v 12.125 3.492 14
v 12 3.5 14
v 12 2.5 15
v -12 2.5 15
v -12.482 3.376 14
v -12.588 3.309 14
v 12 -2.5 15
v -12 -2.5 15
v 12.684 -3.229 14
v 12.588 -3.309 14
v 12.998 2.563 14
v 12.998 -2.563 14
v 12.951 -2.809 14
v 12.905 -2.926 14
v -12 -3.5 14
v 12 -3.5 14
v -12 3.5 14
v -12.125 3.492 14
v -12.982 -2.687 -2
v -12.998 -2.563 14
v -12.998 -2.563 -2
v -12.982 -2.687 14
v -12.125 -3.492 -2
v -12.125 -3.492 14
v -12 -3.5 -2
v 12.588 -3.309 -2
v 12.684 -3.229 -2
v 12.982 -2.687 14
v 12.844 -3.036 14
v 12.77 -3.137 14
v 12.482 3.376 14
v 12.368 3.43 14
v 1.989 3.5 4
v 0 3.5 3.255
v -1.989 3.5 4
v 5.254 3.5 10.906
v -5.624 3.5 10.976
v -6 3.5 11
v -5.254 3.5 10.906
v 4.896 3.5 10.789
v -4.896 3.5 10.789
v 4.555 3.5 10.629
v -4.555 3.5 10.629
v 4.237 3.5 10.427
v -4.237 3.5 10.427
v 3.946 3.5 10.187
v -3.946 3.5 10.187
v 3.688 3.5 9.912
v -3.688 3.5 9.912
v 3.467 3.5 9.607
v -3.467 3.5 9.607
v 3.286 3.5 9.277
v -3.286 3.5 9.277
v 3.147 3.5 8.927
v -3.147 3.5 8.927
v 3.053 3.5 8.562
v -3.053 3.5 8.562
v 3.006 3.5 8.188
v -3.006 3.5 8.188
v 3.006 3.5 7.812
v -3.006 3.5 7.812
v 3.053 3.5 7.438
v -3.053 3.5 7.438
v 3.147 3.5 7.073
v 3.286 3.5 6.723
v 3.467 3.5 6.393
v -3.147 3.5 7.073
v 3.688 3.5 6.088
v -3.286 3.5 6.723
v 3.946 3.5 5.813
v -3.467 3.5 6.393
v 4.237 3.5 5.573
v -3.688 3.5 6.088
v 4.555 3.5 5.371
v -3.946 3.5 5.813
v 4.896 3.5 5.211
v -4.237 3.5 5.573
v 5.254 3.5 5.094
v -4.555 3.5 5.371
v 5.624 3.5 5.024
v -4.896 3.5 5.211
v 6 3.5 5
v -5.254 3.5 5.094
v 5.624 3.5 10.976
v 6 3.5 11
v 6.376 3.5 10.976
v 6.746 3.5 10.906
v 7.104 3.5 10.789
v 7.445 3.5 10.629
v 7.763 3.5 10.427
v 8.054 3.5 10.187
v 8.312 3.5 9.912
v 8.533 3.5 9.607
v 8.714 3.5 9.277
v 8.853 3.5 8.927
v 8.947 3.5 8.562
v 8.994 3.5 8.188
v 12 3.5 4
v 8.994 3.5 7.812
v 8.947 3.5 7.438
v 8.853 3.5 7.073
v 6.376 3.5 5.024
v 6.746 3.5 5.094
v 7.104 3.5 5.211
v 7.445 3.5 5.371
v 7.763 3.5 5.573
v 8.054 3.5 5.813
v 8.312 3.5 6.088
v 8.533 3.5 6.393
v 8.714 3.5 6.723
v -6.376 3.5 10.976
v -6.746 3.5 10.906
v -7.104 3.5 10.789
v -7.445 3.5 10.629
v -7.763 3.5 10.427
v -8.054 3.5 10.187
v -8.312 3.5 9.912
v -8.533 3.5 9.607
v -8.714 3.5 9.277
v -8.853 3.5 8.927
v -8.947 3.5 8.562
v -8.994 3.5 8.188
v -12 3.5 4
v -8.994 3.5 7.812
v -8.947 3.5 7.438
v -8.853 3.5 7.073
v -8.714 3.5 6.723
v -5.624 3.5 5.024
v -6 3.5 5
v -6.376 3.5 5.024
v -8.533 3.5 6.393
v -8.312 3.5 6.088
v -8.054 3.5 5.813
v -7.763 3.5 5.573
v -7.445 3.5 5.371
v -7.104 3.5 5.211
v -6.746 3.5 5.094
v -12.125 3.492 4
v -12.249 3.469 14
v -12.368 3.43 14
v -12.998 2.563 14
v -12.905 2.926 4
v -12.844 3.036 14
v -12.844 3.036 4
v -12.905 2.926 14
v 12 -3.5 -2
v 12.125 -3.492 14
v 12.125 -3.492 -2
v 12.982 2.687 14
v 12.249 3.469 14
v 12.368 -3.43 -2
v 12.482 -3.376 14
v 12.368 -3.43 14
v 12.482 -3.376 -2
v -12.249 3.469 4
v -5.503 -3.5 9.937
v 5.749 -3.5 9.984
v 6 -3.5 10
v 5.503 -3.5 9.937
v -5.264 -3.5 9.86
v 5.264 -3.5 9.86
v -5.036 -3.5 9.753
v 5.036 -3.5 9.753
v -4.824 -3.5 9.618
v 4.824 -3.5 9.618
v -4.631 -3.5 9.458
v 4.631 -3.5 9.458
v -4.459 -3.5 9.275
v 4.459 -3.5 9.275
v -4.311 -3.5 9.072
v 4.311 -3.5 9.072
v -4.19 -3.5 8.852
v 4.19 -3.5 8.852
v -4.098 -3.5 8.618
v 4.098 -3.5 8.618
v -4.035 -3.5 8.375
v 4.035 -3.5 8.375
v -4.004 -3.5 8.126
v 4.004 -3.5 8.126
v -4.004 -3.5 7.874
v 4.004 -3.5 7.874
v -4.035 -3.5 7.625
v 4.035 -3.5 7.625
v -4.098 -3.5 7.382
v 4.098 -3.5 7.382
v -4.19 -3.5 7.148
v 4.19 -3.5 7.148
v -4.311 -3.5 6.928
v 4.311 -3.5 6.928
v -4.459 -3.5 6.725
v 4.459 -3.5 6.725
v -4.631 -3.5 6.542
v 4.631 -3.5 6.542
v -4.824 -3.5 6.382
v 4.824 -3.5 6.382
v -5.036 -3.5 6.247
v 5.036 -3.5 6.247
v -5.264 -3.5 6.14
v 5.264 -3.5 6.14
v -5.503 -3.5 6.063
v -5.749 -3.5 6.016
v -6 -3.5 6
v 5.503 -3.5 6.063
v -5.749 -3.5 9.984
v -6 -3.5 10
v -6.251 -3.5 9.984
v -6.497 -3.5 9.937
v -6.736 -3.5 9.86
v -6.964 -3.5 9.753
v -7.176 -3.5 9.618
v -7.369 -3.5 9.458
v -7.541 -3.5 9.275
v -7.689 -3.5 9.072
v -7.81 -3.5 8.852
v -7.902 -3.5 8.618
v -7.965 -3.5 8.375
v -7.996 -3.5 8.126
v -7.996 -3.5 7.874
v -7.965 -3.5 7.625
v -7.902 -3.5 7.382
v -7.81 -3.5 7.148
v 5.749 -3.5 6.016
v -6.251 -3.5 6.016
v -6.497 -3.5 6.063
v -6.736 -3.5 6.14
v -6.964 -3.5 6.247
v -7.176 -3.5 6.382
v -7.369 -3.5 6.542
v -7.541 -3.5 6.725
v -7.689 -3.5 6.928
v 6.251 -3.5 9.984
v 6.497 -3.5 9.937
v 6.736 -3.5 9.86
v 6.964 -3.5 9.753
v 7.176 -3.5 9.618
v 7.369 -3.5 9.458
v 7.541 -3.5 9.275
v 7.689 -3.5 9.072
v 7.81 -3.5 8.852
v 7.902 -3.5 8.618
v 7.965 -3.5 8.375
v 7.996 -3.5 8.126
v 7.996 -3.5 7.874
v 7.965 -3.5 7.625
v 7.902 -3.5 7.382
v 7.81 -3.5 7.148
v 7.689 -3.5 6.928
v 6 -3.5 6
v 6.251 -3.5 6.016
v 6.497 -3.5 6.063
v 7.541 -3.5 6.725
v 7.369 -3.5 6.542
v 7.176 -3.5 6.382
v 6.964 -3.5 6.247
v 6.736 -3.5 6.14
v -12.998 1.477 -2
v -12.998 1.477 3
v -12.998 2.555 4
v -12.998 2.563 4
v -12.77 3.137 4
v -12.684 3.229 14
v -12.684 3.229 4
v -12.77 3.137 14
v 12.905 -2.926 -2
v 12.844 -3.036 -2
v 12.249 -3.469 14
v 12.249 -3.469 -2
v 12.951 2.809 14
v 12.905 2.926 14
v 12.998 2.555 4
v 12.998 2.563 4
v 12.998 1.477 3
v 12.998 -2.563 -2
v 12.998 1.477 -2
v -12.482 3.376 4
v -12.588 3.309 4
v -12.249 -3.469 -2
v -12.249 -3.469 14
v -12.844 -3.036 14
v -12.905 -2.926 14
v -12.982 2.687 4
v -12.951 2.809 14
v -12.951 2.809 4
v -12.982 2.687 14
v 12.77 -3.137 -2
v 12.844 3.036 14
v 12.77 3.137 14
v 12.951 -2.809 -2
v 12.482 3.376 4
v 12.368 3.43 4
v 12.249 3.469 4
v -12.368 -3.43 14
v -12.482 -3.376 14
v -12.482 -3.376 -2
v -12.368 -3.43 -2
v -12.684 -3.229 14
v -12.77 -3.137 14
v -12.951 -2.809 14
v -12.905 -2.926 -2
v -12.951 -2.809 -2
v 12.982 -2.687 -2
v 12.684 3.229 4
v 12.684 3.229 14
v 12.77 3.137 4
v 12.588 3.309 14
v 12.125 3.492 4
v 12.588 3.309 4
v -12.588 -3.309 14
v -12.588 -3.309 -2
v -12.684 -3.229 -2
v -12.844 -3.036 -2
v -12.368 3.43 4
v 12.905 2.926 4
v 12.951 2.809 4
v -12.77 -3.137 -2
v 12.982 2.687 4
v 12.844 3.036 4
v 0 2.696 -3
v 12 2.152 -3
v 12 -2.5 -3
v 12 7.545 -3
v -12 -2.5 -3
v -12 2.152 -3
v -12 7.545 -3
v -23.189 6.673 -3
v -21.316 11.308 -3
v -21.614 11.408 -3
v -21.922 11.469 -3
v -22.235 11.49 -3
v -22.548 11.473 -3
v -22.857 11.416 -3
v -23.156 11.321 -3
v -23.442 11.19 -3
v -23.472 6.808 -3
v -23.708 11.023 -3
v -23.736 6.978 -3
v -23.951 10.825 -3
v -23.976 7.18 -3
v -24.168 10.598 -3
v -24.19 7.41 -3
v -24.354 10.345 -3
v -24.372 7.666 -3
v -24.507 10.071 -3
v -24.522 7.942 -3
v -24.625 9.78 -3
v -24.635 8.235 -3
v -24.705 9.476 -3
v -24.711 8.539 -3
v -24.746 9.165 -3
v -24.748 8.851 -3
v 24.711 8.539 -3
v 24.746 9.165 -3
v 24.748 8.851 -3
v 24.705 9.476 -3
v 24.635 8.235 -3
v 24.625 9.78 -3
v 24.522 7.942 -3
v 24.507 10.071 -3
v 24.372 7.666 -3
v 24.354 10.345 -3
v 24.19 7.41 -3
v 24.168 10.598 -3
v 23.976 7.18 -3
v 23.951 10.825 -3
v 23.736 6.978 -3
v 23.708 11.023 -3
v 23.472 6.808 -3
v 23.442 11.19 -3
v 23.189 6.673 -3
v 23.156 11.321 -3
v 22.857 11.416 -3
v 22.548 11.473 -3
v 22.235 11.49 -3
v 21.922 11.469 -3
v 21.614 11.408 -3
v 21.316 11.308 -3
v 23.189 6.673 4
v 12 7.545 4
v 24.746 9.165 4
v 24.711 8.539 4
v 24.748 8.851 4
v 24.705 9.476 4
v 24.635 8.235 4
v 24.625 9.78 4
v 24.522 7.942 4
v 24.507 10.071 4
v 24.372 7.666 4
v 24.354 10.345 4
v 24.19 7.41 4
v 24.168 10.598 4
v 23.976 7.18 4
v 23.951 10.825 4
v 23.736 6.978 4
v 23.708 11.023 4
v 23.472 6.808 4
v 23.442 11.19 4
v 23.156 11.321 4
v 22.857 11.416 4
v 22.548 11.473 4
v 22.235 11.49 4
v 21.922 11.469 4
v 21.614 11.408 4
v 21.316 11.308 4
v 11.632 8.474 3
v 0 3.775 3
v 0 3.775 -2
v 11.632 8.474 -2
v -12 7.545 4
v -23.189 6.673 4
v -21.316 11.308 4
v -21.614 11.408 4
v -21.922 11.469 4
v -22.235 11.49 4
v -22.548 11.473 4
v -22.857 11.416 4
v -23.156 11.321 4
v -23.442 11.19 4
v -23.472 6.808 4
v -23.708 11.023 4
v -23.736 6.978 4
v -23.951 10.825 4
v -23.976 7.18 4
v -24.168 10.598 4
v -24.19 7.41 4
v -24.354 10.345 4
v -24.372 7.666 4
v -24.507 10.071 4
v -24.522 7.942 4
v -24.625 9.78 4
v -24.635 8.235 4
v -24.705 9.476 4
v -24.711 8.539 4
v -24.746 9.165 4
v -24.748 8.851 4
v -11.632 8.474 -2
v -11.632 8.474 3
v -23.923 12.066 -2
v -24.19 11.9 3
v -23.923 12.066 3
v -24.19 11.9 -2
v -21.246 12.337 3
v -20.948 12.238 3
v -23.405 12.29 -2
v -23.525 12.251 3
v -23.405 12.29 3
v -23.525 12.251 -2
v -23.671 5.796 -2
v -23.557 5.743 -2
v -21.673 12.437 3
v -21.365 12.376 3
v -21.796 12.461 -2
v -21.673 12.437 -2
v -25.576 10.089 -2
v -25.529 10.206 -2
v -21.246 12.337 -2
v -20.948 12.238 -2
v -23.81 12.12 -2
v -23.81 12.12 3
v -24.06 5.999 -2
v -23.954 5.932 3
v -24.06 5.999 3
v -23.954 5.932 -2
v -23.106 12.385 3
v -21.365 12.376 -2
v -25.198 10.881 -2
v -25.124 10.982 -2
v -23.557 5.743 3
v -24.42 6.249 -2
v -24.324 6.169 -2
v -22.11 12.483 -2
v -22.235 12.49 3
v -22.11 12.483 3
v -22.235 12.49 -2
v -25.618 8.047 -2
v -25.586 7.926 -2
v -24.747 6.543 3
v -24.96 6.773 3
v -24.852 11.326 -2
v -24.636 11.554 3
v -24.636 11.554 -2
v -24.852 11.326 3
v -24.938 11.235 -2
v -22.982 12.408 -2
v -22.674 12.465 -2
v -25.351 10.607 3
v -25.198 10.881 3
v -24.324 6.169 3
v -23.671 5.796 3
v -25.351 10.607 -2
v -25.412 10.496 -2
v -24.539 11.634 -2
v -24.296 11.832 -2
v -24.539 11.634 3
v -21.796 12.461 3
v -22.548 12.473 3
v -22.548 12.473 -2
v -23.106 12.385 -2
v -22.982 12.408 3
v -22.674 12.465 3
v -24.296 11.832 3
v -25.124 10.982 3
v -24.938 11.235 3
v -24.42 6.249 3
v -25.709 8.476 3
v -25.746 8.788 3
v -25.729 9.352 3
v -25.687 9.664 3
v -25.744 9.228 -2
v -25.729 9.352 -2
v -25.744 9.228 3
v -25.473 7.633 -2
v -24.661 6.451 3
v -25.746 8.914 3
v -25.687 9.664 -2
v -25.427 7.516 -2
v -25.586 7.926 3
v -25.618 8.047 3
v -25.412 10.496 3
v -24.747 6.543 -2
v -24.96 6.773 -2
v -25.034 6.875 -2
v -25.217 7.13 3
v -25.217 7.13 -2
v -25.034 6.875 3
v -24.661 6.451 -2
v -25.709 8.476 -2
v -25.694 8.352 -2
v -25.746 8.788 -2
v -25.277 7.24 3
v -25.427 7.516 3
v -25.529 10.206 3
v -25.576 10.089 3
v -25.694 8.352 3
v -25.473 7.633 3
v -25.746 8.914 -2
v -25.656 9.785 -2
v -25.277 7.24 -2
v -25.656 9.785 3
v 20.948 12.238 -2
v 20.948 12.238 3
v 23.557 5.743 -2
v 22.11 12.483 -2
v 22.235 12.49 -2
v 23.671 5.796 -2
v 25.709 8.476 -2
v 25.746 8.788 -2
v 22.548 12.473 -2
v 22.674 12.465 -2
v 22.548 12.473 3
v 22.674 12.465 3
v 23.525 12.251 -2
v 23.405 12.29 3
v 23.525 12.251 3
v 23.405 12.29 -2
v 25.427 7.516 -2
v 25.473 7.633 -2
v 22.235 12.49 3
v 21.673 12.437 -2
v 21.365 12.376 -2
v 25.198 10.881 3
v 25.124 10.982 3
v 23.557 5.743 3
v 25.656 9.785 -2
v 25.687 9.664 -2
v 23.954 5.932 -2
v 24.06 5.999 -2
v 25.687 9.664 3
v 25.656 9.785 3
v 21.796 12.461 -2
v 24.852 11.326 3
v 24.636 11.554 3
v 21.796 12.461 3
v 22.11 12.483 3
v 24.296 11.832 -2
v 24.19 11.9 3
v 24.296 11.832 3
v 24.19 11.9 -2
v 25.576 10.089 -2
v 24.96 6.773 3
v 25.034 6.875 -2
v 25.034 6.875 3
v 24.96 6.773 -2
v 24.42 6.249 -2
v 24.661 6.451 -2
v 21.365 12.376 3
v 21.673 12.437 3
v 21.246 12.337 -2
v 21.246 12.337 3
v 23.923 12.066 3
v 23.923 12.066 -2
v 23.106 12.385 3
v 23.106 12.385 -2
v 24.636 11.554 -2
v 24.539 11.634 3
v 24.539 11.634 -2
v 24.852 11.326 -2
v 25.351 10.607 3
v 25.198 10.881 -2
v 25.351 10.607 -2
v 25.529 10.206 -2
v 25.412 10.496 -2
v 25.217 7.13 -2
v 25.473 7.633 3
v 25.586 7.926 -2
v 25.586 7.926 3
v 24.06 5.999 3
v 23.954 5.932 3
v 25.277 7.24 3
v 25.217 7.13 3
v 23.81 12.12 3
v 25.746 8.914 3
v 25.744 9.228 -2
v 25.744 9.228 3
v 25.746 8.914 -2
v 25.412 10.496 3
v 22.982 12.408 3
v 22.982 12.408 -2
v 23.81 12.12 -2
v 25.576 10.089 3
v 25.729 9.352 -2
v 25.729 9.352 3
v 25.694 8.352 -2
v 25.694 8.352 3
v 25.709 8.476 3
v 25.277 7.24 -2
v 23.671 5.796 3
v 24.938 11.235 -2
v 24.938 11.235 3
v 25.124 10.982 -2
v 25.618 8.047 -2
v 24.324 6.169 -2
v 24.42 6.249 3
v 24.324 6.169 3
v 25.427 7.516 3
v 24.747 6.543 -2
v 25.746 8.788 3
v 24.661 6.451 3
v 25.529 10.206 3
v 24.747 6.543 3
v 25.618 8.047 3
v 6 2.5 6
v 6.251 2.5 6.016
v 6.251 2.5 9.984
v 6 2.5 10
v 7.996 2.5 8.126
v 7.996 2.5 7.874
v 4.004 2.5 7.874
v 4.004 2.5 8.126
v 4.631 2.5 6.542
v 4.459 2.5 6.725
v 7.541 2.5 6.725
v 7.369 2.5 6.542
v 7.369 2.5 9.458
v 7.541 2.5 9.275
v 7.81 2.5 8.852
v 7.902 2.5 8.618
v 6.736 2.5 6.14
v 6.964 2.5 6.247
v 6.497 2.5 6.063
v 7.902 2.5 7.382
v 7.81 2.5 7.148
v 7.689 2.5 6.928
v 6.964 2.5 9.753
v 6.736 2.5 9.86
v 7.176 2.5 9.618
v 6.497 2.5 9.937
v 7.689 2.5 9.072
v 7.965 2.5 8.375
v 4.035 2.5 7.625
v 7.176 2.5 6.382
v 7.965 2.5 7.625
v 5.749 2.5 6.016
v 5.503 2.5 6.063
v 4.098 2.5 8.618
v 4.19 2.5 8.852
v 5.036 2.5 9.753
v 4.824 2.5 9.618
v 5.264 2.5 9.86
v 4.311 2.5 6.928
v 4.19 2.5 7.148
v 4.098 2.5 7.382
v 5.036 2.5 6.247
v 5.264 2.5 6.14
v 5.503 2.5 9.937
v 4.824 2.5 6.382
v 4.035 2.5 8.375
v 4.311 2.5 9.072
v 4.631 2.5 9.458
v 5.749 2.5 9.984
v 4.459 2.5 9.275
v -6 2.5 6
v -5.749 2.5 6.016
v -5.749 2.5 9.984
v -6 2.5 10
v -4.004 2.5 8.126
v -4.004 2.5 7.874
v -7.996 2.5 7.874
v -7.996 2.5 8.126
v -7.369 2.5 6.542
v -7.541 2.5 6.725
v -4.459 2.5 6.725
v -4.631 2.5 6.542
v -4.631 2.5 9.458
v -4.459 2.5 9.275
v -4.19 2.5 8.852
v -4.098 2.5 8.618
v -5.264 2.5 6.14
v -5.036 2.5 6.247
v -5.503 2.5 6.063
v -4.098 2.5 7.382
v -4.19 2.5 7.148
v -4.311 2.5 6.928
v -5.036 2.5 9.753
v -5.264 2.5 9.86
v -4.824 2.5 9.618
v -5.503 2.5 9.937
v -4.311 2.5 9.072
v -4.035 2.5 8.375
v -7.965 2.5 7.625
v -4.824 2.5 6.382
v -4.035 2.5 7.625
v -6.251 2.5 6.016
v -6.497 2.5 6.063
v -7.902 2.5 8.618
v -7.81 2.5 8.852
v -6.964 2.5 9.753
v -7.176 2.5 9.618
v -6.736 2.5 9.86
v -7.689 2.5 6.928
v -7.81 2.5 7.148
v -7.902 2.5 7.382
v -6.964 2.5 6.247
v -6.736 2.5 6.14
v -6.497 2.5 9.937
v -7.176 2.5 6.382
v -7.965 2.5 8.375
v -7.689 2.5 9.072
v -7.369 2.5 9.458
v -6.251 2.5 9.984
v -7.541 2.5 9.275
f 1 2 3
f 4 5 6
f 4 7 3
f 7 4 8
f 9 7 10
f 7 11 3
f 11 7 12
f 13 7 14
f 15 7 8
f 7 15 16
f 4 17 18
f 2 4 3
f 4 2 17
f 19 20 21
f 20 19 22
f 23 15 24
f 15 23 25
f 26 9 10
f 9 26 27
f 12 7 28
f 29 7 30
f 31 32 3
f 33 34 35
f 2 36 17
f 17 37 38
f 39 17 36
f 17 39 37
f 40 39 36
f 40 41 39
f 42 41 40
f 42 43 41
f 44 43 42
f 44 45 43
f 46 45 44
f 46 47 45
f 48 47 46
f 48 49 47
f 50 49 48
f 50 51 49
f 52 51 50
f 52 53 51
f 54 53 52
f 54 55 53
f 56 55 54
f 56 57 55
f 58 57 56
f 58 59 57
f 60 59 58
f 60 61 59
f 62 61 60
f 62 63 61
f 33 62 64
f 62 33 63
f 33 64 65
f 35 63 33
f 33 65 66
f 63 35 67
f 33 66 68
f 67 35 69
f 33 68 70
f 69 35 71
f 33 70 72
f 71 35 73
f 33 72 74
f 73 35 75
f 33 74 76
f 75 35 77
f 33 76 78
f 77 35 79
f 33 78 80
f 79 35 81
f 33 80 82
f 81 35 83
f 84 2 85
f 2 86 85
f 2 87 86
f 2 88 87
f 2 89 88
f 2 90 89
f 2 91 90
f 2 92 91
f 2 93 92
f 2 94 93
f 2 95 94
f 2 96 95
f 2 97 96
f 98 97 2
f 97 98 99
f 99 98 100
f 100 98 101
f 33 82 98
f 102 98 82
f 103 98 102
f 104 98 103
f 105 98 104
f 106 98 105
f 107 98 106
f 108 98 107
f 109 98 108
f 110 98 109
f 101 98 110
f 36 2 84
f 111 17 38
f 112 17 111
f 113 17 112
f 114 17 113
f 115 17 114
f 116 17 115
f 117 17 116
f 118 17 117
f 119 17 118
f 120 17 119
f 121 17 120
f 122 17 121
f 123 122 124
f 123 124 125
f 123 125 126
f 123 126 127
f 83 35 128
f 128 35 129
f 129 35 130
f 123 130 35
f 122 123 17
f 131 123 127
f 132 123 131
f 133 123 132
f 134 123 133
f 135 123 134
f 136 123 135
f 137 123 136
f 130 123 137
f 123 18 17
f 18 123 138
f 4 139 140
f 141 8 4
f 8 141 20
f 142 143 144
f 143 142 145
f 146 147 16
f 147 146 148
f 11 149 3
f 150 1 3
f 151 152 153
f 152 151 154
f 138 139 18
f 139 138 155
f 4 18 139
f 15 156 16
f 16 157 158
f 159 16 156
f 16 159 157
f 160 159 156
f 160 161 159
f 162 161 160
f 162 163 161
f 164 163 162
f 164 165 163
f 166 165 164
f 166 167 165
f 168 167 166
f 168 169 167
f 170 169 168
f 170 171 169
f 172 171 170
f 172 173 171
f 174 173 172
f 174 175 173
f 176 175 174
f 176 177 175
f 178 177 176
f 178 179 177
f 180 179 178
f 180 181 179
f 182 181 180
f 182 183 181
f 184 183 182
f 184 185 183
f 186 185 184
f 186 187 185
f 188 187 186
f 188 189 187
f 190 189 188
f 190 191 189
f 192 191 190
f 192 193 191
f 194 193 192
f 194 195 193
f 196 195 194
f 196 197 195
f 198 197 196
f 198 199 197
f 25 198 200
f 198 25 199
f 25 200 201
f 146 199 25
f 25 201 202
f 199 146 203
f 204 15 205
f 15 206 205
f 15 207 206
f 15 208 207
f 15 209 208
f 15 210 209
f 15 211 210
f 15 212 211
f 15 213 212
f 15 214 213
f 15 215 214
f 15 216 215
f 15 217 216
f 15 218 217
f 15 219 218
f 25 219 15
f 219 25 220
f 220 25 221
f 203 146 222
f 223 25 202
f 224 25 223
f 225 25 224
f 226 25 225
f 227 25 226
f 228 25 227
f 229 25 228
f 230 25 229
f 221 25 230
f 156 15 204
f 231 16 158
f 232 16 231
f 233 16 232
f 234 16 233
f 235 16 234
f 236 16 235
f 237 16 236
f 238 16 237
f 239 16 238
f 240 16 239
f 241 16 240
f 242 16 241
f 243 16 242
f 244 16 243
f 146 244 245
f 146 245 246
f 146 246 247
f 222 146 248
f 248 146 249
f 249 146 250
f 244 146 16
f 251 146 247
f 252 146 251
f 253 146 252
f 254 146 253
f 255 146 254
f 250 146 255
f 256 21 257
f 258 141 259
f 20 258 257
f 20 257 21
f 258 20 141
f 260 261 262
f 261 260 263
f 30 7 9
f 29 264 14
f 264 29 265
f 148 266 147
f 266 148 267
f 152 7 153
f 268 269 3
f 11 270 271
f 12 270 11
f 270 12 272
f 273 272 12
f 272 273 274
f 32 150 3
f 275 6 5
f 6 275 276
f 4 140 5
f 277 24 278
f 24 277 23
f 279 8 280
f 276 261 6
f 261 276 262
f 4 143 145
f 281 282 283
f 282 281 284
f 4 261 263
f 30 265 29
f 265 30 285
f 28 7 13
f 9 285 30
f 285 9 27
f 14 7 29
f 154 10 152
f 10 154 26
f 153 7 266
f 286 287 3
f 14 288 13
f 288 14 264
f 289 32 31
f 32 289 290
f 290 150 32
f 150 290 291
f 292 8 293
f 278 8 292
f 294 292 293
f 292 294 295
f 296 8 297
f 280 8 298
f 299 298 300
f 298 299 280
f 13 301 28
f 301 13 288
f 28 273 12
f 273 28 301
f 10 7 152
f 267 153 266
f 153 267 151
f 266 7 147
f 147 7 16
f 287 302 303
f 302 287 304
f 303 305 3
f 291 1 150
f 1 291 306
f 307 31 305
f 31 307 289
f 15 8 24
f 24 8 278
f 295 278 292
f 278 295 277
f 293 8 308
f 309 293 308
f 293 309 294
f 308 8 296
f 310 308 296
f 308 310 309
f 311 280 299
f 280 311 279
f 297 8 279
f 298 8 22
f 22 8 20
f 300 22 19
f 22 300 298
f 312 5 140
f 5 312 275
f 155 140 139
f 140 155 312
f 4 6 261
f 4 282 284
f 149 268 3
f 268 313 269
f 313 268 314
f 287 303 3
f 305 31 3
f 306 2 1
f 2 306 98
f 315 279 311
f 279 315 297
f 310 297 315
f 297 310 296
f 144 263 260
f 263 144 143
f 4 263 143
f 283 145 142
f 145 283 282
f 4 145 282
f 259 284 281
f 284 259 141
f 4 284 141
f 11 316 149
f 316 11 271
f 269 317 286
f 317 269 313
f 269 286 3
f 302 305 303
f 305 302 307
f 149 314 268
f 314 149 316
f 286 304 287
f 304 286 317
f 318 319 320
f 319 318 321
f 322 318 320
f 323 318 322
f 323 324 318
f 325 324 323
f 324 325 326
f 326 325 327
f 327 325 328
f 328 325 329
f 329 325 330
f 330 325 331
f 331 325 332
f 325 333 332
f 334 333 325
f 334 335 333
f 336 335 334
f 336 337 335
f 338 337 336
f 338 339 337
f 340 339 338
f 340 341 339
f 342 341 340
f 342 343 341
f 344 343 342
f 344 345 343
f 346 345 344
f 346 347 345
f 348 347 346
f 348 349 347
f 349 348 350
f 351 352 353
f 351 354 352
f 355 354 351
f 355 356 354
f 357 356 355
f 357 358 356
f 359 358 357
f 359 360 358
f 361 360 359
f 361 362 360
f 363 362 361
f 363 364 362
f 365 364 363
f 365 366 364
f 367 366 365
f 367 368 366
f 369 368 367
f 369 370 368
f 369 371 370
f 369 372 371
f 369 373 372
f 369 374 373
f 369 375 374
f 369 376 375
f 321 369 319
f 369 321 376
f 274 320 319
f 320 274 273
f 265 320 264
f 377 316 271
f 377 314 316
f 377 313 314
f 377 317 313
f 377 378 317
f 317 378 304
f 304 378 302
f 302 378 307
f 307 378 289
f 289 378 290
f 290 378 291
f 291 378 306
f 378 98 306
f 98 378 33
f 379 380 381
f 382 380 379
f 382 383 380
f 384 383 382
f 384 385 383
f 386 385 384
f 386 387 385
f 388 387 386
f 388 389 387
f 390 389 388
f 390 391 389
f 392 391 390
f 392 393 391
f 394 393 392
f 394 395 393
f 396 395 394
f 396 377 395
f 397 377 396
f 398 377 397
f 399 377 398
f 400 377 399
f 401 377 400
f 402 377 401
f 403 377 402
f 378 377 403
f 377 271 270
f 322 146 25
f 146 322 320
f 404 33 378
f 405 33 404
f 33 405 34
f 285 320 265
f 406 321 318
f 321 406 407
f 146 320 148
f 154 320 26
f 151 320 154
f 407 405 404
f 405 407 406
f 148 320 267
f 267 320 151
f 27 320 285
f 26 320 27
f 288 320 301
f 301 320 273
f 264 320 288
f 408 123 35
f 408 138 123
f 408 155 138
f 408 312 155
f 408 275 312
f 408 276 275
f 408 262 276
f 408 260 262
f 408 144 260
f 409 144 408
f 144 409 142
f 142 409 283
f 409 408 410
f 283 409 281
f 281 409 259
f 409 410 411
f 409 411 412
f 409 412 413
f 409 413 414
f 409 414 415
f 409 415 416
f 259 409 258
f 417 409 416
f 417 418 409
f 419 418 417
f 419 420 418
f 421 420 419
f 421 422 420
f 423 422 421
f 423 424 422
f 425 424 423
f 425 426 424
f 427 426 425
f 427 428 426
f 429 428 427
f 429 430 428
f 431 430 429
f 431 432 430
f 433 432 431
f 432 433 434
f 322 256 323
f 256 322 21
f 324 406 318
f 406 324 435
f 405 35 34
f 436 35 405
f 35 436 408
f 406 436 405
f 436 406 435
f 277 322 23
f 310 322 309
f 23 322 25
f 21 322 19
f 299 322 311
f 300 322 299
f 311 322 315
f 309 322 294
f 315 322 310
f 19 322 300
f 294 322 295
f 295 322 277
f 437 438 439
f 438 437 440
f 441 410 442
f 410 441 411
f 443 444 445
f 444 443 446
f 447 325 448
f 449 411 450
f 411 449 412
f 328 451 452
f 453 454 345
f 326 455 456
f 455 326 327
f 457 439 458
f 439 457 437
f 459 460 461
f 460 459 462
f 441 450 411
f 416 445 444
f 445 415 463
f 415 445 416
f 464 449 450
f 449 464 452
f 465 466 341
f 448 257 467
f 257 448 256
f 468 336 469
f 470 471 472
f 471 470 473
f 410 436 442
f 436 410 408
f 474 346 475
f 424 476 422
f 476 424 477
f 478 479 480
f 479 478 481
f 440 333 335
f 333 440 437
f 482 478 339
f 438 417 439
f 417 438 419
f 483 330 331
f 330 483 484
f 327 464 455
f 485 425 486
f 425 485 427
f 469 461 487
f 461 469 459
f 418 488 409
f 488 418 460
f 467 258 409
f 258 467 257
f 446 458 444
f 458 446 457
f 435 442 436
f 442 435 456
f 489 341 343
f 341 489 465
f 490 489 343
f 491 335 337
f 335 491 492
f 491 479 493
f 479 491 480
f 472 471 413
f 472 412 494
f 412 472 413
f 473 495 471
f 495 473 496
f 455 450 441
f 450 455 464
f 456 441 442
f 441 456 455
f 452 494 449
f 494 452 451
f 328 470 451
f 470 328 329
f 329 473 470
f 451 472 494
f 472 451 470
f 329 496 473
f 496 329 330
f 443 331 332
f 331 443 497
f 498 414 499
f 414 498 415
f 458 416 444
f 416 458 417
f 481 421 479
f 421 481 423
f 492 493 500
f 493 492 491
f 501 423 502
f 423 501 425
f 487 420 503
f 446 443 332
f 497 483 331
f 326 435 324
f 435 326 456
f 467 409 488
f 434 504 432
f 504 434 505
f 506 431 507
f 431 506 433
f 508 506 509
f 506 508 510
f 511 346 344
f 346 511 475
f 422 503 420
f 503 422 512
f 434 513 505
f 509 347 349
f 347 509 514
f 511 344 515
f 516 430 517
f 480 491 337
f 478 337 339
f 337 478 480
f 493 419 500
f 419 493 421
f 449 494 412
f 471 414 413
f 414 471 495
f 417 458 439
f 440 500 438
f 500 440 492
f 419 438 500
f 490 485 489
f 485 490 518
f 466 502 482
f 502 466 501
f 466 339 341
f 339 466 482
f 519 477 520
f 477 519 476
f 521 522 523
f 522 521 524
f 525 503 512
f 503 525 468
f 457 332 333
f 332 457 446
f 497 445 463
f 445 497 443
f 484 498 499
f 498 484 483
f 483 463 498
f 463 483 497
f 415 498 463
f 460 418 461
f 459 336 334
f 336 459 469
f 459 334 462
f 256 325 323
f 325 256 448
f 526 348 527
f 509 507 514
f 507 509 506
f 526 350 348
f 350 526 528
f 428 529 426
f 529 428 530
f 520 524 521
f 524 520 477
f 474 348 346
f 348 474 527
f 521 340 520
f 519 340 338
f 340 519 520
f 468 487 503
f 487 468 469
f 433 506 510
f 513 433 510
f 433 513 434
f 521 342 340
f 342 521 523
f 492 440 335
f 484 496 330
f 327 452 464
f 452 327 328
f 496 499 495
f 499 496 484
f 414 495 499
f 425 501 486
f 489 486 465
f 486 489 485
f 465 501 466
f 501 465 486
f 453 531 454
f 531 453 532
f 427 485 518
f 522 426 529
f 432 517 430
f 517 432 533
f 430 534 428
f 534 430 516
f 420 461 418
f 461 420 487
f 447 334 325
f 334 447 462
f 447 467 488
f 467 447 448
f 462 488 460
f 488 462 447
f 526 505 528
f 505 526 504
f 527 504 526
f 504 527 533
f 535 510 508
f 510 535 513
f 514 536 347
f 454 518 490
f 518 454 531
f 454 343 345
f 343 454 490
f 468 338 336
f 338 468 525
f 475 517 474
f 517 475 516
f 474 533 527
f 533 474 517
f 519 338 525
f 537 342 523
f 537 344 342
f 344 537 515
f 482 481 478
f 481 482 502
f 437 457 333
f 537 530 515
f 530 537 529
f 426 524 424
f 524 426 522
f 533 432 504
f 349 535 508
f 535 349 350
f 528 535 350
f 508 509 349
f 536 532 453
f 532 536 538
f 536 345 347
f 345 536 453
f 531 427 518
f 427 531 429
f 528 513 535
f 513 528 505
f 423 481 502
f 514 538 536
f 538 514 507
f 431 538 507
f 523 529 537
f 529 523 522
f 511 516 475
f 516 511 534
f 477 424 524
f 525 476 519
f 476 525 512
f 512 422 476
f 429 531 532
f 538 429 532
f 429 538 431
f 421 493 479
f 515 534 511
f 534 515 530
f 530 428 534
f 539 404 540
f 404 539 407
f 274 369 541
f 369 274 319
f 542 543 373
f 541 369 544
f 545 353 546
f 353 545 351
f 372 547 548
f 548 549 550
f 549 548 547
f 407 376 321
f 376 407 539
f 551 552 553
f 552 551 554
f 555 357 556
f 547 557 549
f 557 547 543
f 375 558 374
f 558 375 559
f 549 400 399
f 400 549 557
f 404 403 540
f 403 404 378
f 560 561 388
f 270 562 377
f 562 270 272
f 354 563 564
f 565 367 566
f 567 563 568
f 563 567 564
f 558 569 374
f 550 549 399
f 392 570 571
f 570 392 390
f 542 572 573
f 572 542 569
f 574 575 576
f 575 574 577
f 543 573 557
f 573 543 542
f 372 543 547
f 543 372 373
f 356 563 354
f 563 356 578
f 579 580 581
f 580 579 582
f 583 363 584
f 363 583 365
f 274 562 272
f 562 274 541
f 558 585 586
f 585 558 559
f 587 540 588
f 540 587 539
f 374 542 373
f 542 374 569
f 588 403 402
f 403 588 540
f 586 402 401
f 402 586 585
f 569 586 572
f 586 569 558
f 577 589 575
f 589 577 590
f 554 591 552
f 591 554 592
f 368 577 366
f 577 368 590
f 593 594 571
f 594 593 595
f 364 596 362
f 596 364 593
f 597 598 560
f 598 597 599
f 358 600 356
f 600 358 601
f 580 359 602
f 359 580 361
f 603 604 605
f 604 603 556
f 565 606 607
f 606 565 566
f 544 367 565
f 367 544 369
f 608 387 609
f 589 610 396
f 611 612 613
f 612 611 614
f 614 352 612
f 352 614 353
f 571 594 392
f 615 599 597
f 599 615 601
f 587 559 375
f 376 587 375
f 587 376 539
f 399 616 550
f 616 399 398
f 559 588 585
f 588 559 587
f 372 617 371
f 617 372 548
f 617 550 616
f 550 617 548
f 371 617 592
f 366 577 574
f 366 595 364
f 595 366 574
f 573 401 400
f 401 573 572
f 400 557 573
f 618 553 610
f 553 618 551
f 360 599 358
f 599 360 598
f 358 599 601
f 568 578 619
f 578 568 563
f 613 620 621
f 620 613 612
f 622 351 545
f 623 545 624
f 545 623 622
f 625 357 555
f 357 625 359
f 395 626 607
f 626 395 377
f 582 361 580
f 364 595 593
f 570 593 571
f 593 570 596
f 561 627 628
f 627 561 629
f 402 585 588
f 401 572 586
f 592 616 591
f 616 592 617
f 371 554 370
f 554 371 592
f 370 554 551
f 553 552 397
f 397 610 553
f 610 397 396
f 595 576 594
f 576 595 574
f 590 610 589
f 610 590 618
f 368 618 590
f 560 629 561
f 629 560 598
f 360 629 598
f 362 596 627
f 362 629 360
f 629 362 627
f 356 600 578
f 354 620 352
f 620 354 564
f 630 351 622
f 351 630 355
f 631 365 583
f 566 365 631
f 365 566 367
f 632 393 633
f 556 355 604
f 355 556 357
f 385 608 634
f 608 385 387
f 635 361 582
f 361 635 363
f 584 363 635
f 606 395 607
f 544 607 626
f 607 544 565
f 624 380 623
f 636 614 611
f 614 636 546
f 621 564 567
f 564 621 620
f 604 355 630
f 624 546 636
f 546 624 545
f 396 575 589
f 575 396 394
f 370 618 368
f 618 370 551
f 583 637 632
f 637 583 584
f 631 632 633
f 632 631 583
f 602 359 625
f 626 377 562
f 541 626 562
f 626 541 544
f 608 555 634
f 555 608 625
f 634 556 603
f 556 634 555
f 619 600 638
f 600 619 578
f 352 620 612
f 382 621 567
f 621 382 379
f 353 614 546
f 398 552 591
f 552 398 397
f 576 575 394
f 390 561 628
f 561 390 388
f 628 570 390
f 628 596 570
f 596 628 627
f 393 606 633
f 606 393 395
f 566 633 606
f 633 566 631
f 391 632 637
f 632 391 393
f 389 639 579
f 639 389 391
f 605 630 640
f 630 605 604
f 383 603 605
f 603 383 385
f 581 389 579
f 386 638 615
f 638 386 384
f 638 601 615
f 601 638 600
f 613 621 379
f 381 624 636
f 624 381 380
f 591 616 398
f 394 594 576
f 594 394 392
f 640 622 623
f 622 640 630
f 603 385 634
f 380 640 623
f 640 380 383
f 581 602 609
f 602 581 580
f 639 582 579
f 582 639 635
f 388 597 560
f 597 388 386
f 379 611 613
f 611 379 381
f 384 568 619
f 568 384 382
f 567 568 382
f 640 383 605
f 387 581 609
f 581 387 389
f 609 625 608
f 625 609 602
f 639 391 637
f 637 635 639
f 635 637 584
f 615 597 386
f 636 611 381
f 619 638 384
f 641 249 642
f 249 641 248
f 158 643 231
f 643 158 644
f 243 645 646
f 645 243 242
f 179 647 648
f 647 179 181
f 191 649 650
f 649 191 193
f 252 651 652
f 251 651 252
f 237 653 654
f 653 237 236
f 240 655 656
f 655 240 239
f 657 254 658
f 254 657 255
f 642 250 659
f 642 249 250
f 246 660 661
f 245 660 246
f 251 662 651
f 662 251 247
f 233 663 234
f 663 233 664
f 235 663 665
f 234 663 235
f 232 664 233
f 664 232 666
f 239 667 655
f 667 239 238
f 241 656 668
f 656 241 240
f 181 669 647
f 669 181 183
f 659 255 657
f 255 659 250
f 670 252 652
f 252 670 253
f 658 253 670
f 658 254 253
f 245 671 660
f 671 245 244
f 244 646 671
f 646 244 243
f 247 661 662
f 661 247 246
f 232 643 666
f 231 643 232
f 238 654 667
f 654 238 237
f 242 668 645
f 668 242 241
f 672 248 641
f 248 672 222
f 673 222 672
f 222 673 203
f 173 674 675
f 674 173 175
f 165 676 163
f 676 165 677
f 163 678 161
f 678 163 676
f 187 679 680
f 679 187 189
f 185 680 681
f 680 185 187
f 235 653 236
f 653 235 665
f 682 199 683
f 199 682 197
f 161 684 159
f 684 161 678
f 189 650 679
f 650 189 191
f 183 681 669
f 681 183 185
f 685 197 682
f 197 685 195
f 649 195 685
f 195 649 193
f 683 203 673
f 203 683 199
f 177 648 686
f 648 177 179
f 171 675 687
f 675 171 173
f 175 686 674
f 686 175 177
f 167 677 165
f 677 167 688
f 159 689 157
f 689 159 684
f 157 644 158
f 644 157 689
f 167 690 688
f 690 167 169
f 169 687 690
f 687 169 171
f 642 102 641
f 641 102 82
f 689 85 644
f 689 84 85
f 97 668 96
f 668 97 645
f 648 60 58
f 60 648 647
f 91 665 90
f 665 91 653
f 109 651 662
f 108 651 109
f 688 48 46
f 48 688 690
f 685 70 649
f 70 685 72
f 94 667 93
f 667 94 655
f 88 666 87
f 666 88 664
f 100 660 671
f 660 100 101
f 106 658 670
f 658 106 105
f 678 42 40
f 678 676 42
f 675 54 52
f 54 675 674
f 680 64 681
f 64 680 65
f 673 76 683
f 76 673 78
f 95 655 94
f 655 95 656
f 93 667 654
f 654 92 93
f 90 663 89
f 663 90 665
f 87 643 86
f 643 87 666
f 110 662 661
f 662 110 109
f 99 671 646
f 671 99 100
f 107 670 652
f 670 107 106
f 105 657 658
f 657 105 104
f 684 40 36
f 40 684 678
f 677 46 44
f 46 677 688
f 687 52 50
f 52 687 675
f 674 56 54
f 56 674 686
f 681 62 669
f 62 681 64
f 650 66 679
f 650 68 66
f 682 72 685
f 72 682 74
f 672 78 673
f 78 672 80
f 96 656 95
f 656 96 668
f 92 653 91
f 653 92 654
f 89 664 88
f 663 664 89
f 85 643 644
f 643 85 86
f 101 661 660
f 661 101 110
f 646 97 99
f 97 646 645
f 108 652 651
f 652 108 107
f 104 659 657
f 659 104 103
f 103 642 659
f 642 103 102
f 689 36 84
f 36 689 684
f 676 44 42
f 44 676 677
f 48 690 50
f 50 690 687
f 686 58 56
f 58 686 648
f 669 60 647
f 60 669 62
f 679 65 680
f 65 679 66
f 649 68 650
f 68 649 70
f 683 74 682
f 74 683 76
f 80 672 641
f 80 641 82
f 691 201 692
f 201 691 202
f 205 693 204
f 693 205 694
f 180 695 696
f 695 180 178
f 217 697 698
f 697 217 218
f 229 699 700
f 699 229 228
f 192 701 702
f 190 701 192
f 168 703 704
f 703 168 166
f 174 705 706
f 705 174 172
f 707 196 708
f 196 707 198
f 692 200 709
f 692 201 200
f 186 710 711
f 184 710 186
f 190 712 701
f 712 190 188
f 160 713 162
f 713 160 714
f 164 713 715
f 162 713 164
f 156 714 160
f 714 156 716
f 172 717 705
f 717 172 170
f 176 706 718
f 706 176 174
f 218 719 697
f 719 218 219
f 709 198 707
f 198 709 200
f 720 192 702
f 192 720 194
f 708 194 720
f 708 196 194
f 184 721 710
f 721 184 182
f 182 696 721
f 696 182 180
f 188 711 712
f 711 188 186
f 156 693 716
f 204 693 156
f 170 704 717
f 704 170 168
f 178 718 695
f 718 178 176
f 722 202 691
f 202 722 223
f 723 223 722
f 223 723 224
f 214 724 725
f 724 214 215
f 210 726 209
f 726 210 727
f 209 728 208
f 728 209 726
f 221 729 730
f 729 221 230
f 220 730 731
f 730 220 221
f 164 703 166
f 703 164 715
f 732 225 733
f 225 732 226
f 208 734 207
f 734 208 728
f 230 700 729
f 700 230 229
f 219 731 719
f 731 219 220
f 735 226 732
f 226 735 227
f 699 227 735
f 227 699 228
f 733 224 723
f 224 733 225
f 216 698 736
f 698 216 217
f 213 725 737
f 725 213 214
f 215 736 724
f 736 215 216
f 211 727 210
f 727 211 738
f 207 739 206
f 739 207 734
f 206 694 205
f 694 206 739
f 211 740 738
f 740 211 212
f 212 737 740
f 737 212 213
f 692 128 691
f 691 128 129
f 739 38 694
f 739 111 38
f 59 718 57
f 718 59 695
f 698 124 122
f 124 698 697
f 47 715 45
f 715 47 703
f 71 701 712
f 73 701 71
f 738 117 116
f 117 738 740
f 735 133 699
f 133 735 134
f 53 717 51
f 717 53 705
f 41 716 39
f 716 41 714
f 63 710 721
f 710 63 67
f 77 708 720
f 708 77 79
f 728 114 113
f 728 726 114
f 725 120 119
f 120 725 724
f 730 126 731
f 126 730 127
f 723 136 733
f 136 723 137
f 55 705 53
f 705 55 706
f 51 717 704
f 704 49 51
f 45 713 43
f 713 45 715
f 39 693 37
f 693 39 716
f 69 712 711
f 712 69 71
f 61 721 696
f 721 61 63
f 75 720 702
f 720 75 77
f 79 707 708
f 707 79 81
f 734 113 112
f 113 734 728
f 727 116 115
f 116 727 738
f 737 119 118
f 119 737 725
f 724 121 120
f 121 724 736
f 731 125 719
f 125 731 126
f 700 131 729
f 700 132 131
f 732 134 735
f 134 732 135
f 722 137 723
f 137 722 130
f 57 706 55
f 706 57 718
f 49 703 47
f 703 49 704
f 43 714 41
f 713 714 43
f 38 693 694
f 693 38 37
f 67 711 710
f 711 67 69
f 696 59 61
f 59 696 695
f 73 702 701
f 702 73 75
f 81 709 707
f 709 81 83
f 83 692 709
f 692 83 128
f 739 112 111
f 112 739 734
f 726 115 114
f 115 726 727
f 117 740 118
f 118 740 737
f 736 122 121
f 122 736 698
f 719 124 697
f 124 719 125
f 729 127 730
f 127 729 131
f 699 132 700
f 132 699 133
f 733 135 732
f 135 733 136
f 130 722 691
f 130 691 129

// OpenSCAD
// a light duty cleat for use with parachute cord.
// may be attached to wall with 2x drywall screws (or similar).

$fn = 50;
// rotation applied for a prettier preview image:
rotate([0, 0, 270]) difference(){
    minkowski(){
        // body of hook pre-smoothing:
        union(){
            // +Y hook body:
            rotate([0, 0, 22]) translate([0, 24, 0]) union(){
                translate([0, -12, 0]) cube([5, 24, 5], center=true);
                // rounded hook tip:
                cylinder(5, 2.5, 2.5, center=true);
            }
            // -Y hook body:
            rotate([0, 0, 158]) translate([0, 24, 0]) union(){
                translate([0, -12, 0]) cube([5, 24, 5], center=true);
                // rounded hook tip:
                cylinder(5, 2.5, 2.5, center=true);
            }
            translate([0, 0, 5.5]) cube([5, 24, 16], center=true);
        }
        // add chamfer to horizontals and fillet to verticals:
        union(){
            translate([0, 0, .5]) cylinder(1, 1, 0);
            translate([0, 0, -.5]) cylinder(1, 0, 1);
        };
    }
    // +Y hole for drywall screw
    translate([5.5, 6, 8]) rotate([0, 90, 0]) union() {
        cylinder(20, 2, 2, center=true);
        translate([0, 0, -8])cylinder(4, 4, 0, center=true);
    }
    // -Y hole for drywall screw
    translate([5.5, -6, 8]) rotate([0, 90, 0]) union() {
        cylinder(20, 2, 2, center=true);
        translate([0, 0, -8])cylinder(4, 4, 0, center=true);
    }
}
